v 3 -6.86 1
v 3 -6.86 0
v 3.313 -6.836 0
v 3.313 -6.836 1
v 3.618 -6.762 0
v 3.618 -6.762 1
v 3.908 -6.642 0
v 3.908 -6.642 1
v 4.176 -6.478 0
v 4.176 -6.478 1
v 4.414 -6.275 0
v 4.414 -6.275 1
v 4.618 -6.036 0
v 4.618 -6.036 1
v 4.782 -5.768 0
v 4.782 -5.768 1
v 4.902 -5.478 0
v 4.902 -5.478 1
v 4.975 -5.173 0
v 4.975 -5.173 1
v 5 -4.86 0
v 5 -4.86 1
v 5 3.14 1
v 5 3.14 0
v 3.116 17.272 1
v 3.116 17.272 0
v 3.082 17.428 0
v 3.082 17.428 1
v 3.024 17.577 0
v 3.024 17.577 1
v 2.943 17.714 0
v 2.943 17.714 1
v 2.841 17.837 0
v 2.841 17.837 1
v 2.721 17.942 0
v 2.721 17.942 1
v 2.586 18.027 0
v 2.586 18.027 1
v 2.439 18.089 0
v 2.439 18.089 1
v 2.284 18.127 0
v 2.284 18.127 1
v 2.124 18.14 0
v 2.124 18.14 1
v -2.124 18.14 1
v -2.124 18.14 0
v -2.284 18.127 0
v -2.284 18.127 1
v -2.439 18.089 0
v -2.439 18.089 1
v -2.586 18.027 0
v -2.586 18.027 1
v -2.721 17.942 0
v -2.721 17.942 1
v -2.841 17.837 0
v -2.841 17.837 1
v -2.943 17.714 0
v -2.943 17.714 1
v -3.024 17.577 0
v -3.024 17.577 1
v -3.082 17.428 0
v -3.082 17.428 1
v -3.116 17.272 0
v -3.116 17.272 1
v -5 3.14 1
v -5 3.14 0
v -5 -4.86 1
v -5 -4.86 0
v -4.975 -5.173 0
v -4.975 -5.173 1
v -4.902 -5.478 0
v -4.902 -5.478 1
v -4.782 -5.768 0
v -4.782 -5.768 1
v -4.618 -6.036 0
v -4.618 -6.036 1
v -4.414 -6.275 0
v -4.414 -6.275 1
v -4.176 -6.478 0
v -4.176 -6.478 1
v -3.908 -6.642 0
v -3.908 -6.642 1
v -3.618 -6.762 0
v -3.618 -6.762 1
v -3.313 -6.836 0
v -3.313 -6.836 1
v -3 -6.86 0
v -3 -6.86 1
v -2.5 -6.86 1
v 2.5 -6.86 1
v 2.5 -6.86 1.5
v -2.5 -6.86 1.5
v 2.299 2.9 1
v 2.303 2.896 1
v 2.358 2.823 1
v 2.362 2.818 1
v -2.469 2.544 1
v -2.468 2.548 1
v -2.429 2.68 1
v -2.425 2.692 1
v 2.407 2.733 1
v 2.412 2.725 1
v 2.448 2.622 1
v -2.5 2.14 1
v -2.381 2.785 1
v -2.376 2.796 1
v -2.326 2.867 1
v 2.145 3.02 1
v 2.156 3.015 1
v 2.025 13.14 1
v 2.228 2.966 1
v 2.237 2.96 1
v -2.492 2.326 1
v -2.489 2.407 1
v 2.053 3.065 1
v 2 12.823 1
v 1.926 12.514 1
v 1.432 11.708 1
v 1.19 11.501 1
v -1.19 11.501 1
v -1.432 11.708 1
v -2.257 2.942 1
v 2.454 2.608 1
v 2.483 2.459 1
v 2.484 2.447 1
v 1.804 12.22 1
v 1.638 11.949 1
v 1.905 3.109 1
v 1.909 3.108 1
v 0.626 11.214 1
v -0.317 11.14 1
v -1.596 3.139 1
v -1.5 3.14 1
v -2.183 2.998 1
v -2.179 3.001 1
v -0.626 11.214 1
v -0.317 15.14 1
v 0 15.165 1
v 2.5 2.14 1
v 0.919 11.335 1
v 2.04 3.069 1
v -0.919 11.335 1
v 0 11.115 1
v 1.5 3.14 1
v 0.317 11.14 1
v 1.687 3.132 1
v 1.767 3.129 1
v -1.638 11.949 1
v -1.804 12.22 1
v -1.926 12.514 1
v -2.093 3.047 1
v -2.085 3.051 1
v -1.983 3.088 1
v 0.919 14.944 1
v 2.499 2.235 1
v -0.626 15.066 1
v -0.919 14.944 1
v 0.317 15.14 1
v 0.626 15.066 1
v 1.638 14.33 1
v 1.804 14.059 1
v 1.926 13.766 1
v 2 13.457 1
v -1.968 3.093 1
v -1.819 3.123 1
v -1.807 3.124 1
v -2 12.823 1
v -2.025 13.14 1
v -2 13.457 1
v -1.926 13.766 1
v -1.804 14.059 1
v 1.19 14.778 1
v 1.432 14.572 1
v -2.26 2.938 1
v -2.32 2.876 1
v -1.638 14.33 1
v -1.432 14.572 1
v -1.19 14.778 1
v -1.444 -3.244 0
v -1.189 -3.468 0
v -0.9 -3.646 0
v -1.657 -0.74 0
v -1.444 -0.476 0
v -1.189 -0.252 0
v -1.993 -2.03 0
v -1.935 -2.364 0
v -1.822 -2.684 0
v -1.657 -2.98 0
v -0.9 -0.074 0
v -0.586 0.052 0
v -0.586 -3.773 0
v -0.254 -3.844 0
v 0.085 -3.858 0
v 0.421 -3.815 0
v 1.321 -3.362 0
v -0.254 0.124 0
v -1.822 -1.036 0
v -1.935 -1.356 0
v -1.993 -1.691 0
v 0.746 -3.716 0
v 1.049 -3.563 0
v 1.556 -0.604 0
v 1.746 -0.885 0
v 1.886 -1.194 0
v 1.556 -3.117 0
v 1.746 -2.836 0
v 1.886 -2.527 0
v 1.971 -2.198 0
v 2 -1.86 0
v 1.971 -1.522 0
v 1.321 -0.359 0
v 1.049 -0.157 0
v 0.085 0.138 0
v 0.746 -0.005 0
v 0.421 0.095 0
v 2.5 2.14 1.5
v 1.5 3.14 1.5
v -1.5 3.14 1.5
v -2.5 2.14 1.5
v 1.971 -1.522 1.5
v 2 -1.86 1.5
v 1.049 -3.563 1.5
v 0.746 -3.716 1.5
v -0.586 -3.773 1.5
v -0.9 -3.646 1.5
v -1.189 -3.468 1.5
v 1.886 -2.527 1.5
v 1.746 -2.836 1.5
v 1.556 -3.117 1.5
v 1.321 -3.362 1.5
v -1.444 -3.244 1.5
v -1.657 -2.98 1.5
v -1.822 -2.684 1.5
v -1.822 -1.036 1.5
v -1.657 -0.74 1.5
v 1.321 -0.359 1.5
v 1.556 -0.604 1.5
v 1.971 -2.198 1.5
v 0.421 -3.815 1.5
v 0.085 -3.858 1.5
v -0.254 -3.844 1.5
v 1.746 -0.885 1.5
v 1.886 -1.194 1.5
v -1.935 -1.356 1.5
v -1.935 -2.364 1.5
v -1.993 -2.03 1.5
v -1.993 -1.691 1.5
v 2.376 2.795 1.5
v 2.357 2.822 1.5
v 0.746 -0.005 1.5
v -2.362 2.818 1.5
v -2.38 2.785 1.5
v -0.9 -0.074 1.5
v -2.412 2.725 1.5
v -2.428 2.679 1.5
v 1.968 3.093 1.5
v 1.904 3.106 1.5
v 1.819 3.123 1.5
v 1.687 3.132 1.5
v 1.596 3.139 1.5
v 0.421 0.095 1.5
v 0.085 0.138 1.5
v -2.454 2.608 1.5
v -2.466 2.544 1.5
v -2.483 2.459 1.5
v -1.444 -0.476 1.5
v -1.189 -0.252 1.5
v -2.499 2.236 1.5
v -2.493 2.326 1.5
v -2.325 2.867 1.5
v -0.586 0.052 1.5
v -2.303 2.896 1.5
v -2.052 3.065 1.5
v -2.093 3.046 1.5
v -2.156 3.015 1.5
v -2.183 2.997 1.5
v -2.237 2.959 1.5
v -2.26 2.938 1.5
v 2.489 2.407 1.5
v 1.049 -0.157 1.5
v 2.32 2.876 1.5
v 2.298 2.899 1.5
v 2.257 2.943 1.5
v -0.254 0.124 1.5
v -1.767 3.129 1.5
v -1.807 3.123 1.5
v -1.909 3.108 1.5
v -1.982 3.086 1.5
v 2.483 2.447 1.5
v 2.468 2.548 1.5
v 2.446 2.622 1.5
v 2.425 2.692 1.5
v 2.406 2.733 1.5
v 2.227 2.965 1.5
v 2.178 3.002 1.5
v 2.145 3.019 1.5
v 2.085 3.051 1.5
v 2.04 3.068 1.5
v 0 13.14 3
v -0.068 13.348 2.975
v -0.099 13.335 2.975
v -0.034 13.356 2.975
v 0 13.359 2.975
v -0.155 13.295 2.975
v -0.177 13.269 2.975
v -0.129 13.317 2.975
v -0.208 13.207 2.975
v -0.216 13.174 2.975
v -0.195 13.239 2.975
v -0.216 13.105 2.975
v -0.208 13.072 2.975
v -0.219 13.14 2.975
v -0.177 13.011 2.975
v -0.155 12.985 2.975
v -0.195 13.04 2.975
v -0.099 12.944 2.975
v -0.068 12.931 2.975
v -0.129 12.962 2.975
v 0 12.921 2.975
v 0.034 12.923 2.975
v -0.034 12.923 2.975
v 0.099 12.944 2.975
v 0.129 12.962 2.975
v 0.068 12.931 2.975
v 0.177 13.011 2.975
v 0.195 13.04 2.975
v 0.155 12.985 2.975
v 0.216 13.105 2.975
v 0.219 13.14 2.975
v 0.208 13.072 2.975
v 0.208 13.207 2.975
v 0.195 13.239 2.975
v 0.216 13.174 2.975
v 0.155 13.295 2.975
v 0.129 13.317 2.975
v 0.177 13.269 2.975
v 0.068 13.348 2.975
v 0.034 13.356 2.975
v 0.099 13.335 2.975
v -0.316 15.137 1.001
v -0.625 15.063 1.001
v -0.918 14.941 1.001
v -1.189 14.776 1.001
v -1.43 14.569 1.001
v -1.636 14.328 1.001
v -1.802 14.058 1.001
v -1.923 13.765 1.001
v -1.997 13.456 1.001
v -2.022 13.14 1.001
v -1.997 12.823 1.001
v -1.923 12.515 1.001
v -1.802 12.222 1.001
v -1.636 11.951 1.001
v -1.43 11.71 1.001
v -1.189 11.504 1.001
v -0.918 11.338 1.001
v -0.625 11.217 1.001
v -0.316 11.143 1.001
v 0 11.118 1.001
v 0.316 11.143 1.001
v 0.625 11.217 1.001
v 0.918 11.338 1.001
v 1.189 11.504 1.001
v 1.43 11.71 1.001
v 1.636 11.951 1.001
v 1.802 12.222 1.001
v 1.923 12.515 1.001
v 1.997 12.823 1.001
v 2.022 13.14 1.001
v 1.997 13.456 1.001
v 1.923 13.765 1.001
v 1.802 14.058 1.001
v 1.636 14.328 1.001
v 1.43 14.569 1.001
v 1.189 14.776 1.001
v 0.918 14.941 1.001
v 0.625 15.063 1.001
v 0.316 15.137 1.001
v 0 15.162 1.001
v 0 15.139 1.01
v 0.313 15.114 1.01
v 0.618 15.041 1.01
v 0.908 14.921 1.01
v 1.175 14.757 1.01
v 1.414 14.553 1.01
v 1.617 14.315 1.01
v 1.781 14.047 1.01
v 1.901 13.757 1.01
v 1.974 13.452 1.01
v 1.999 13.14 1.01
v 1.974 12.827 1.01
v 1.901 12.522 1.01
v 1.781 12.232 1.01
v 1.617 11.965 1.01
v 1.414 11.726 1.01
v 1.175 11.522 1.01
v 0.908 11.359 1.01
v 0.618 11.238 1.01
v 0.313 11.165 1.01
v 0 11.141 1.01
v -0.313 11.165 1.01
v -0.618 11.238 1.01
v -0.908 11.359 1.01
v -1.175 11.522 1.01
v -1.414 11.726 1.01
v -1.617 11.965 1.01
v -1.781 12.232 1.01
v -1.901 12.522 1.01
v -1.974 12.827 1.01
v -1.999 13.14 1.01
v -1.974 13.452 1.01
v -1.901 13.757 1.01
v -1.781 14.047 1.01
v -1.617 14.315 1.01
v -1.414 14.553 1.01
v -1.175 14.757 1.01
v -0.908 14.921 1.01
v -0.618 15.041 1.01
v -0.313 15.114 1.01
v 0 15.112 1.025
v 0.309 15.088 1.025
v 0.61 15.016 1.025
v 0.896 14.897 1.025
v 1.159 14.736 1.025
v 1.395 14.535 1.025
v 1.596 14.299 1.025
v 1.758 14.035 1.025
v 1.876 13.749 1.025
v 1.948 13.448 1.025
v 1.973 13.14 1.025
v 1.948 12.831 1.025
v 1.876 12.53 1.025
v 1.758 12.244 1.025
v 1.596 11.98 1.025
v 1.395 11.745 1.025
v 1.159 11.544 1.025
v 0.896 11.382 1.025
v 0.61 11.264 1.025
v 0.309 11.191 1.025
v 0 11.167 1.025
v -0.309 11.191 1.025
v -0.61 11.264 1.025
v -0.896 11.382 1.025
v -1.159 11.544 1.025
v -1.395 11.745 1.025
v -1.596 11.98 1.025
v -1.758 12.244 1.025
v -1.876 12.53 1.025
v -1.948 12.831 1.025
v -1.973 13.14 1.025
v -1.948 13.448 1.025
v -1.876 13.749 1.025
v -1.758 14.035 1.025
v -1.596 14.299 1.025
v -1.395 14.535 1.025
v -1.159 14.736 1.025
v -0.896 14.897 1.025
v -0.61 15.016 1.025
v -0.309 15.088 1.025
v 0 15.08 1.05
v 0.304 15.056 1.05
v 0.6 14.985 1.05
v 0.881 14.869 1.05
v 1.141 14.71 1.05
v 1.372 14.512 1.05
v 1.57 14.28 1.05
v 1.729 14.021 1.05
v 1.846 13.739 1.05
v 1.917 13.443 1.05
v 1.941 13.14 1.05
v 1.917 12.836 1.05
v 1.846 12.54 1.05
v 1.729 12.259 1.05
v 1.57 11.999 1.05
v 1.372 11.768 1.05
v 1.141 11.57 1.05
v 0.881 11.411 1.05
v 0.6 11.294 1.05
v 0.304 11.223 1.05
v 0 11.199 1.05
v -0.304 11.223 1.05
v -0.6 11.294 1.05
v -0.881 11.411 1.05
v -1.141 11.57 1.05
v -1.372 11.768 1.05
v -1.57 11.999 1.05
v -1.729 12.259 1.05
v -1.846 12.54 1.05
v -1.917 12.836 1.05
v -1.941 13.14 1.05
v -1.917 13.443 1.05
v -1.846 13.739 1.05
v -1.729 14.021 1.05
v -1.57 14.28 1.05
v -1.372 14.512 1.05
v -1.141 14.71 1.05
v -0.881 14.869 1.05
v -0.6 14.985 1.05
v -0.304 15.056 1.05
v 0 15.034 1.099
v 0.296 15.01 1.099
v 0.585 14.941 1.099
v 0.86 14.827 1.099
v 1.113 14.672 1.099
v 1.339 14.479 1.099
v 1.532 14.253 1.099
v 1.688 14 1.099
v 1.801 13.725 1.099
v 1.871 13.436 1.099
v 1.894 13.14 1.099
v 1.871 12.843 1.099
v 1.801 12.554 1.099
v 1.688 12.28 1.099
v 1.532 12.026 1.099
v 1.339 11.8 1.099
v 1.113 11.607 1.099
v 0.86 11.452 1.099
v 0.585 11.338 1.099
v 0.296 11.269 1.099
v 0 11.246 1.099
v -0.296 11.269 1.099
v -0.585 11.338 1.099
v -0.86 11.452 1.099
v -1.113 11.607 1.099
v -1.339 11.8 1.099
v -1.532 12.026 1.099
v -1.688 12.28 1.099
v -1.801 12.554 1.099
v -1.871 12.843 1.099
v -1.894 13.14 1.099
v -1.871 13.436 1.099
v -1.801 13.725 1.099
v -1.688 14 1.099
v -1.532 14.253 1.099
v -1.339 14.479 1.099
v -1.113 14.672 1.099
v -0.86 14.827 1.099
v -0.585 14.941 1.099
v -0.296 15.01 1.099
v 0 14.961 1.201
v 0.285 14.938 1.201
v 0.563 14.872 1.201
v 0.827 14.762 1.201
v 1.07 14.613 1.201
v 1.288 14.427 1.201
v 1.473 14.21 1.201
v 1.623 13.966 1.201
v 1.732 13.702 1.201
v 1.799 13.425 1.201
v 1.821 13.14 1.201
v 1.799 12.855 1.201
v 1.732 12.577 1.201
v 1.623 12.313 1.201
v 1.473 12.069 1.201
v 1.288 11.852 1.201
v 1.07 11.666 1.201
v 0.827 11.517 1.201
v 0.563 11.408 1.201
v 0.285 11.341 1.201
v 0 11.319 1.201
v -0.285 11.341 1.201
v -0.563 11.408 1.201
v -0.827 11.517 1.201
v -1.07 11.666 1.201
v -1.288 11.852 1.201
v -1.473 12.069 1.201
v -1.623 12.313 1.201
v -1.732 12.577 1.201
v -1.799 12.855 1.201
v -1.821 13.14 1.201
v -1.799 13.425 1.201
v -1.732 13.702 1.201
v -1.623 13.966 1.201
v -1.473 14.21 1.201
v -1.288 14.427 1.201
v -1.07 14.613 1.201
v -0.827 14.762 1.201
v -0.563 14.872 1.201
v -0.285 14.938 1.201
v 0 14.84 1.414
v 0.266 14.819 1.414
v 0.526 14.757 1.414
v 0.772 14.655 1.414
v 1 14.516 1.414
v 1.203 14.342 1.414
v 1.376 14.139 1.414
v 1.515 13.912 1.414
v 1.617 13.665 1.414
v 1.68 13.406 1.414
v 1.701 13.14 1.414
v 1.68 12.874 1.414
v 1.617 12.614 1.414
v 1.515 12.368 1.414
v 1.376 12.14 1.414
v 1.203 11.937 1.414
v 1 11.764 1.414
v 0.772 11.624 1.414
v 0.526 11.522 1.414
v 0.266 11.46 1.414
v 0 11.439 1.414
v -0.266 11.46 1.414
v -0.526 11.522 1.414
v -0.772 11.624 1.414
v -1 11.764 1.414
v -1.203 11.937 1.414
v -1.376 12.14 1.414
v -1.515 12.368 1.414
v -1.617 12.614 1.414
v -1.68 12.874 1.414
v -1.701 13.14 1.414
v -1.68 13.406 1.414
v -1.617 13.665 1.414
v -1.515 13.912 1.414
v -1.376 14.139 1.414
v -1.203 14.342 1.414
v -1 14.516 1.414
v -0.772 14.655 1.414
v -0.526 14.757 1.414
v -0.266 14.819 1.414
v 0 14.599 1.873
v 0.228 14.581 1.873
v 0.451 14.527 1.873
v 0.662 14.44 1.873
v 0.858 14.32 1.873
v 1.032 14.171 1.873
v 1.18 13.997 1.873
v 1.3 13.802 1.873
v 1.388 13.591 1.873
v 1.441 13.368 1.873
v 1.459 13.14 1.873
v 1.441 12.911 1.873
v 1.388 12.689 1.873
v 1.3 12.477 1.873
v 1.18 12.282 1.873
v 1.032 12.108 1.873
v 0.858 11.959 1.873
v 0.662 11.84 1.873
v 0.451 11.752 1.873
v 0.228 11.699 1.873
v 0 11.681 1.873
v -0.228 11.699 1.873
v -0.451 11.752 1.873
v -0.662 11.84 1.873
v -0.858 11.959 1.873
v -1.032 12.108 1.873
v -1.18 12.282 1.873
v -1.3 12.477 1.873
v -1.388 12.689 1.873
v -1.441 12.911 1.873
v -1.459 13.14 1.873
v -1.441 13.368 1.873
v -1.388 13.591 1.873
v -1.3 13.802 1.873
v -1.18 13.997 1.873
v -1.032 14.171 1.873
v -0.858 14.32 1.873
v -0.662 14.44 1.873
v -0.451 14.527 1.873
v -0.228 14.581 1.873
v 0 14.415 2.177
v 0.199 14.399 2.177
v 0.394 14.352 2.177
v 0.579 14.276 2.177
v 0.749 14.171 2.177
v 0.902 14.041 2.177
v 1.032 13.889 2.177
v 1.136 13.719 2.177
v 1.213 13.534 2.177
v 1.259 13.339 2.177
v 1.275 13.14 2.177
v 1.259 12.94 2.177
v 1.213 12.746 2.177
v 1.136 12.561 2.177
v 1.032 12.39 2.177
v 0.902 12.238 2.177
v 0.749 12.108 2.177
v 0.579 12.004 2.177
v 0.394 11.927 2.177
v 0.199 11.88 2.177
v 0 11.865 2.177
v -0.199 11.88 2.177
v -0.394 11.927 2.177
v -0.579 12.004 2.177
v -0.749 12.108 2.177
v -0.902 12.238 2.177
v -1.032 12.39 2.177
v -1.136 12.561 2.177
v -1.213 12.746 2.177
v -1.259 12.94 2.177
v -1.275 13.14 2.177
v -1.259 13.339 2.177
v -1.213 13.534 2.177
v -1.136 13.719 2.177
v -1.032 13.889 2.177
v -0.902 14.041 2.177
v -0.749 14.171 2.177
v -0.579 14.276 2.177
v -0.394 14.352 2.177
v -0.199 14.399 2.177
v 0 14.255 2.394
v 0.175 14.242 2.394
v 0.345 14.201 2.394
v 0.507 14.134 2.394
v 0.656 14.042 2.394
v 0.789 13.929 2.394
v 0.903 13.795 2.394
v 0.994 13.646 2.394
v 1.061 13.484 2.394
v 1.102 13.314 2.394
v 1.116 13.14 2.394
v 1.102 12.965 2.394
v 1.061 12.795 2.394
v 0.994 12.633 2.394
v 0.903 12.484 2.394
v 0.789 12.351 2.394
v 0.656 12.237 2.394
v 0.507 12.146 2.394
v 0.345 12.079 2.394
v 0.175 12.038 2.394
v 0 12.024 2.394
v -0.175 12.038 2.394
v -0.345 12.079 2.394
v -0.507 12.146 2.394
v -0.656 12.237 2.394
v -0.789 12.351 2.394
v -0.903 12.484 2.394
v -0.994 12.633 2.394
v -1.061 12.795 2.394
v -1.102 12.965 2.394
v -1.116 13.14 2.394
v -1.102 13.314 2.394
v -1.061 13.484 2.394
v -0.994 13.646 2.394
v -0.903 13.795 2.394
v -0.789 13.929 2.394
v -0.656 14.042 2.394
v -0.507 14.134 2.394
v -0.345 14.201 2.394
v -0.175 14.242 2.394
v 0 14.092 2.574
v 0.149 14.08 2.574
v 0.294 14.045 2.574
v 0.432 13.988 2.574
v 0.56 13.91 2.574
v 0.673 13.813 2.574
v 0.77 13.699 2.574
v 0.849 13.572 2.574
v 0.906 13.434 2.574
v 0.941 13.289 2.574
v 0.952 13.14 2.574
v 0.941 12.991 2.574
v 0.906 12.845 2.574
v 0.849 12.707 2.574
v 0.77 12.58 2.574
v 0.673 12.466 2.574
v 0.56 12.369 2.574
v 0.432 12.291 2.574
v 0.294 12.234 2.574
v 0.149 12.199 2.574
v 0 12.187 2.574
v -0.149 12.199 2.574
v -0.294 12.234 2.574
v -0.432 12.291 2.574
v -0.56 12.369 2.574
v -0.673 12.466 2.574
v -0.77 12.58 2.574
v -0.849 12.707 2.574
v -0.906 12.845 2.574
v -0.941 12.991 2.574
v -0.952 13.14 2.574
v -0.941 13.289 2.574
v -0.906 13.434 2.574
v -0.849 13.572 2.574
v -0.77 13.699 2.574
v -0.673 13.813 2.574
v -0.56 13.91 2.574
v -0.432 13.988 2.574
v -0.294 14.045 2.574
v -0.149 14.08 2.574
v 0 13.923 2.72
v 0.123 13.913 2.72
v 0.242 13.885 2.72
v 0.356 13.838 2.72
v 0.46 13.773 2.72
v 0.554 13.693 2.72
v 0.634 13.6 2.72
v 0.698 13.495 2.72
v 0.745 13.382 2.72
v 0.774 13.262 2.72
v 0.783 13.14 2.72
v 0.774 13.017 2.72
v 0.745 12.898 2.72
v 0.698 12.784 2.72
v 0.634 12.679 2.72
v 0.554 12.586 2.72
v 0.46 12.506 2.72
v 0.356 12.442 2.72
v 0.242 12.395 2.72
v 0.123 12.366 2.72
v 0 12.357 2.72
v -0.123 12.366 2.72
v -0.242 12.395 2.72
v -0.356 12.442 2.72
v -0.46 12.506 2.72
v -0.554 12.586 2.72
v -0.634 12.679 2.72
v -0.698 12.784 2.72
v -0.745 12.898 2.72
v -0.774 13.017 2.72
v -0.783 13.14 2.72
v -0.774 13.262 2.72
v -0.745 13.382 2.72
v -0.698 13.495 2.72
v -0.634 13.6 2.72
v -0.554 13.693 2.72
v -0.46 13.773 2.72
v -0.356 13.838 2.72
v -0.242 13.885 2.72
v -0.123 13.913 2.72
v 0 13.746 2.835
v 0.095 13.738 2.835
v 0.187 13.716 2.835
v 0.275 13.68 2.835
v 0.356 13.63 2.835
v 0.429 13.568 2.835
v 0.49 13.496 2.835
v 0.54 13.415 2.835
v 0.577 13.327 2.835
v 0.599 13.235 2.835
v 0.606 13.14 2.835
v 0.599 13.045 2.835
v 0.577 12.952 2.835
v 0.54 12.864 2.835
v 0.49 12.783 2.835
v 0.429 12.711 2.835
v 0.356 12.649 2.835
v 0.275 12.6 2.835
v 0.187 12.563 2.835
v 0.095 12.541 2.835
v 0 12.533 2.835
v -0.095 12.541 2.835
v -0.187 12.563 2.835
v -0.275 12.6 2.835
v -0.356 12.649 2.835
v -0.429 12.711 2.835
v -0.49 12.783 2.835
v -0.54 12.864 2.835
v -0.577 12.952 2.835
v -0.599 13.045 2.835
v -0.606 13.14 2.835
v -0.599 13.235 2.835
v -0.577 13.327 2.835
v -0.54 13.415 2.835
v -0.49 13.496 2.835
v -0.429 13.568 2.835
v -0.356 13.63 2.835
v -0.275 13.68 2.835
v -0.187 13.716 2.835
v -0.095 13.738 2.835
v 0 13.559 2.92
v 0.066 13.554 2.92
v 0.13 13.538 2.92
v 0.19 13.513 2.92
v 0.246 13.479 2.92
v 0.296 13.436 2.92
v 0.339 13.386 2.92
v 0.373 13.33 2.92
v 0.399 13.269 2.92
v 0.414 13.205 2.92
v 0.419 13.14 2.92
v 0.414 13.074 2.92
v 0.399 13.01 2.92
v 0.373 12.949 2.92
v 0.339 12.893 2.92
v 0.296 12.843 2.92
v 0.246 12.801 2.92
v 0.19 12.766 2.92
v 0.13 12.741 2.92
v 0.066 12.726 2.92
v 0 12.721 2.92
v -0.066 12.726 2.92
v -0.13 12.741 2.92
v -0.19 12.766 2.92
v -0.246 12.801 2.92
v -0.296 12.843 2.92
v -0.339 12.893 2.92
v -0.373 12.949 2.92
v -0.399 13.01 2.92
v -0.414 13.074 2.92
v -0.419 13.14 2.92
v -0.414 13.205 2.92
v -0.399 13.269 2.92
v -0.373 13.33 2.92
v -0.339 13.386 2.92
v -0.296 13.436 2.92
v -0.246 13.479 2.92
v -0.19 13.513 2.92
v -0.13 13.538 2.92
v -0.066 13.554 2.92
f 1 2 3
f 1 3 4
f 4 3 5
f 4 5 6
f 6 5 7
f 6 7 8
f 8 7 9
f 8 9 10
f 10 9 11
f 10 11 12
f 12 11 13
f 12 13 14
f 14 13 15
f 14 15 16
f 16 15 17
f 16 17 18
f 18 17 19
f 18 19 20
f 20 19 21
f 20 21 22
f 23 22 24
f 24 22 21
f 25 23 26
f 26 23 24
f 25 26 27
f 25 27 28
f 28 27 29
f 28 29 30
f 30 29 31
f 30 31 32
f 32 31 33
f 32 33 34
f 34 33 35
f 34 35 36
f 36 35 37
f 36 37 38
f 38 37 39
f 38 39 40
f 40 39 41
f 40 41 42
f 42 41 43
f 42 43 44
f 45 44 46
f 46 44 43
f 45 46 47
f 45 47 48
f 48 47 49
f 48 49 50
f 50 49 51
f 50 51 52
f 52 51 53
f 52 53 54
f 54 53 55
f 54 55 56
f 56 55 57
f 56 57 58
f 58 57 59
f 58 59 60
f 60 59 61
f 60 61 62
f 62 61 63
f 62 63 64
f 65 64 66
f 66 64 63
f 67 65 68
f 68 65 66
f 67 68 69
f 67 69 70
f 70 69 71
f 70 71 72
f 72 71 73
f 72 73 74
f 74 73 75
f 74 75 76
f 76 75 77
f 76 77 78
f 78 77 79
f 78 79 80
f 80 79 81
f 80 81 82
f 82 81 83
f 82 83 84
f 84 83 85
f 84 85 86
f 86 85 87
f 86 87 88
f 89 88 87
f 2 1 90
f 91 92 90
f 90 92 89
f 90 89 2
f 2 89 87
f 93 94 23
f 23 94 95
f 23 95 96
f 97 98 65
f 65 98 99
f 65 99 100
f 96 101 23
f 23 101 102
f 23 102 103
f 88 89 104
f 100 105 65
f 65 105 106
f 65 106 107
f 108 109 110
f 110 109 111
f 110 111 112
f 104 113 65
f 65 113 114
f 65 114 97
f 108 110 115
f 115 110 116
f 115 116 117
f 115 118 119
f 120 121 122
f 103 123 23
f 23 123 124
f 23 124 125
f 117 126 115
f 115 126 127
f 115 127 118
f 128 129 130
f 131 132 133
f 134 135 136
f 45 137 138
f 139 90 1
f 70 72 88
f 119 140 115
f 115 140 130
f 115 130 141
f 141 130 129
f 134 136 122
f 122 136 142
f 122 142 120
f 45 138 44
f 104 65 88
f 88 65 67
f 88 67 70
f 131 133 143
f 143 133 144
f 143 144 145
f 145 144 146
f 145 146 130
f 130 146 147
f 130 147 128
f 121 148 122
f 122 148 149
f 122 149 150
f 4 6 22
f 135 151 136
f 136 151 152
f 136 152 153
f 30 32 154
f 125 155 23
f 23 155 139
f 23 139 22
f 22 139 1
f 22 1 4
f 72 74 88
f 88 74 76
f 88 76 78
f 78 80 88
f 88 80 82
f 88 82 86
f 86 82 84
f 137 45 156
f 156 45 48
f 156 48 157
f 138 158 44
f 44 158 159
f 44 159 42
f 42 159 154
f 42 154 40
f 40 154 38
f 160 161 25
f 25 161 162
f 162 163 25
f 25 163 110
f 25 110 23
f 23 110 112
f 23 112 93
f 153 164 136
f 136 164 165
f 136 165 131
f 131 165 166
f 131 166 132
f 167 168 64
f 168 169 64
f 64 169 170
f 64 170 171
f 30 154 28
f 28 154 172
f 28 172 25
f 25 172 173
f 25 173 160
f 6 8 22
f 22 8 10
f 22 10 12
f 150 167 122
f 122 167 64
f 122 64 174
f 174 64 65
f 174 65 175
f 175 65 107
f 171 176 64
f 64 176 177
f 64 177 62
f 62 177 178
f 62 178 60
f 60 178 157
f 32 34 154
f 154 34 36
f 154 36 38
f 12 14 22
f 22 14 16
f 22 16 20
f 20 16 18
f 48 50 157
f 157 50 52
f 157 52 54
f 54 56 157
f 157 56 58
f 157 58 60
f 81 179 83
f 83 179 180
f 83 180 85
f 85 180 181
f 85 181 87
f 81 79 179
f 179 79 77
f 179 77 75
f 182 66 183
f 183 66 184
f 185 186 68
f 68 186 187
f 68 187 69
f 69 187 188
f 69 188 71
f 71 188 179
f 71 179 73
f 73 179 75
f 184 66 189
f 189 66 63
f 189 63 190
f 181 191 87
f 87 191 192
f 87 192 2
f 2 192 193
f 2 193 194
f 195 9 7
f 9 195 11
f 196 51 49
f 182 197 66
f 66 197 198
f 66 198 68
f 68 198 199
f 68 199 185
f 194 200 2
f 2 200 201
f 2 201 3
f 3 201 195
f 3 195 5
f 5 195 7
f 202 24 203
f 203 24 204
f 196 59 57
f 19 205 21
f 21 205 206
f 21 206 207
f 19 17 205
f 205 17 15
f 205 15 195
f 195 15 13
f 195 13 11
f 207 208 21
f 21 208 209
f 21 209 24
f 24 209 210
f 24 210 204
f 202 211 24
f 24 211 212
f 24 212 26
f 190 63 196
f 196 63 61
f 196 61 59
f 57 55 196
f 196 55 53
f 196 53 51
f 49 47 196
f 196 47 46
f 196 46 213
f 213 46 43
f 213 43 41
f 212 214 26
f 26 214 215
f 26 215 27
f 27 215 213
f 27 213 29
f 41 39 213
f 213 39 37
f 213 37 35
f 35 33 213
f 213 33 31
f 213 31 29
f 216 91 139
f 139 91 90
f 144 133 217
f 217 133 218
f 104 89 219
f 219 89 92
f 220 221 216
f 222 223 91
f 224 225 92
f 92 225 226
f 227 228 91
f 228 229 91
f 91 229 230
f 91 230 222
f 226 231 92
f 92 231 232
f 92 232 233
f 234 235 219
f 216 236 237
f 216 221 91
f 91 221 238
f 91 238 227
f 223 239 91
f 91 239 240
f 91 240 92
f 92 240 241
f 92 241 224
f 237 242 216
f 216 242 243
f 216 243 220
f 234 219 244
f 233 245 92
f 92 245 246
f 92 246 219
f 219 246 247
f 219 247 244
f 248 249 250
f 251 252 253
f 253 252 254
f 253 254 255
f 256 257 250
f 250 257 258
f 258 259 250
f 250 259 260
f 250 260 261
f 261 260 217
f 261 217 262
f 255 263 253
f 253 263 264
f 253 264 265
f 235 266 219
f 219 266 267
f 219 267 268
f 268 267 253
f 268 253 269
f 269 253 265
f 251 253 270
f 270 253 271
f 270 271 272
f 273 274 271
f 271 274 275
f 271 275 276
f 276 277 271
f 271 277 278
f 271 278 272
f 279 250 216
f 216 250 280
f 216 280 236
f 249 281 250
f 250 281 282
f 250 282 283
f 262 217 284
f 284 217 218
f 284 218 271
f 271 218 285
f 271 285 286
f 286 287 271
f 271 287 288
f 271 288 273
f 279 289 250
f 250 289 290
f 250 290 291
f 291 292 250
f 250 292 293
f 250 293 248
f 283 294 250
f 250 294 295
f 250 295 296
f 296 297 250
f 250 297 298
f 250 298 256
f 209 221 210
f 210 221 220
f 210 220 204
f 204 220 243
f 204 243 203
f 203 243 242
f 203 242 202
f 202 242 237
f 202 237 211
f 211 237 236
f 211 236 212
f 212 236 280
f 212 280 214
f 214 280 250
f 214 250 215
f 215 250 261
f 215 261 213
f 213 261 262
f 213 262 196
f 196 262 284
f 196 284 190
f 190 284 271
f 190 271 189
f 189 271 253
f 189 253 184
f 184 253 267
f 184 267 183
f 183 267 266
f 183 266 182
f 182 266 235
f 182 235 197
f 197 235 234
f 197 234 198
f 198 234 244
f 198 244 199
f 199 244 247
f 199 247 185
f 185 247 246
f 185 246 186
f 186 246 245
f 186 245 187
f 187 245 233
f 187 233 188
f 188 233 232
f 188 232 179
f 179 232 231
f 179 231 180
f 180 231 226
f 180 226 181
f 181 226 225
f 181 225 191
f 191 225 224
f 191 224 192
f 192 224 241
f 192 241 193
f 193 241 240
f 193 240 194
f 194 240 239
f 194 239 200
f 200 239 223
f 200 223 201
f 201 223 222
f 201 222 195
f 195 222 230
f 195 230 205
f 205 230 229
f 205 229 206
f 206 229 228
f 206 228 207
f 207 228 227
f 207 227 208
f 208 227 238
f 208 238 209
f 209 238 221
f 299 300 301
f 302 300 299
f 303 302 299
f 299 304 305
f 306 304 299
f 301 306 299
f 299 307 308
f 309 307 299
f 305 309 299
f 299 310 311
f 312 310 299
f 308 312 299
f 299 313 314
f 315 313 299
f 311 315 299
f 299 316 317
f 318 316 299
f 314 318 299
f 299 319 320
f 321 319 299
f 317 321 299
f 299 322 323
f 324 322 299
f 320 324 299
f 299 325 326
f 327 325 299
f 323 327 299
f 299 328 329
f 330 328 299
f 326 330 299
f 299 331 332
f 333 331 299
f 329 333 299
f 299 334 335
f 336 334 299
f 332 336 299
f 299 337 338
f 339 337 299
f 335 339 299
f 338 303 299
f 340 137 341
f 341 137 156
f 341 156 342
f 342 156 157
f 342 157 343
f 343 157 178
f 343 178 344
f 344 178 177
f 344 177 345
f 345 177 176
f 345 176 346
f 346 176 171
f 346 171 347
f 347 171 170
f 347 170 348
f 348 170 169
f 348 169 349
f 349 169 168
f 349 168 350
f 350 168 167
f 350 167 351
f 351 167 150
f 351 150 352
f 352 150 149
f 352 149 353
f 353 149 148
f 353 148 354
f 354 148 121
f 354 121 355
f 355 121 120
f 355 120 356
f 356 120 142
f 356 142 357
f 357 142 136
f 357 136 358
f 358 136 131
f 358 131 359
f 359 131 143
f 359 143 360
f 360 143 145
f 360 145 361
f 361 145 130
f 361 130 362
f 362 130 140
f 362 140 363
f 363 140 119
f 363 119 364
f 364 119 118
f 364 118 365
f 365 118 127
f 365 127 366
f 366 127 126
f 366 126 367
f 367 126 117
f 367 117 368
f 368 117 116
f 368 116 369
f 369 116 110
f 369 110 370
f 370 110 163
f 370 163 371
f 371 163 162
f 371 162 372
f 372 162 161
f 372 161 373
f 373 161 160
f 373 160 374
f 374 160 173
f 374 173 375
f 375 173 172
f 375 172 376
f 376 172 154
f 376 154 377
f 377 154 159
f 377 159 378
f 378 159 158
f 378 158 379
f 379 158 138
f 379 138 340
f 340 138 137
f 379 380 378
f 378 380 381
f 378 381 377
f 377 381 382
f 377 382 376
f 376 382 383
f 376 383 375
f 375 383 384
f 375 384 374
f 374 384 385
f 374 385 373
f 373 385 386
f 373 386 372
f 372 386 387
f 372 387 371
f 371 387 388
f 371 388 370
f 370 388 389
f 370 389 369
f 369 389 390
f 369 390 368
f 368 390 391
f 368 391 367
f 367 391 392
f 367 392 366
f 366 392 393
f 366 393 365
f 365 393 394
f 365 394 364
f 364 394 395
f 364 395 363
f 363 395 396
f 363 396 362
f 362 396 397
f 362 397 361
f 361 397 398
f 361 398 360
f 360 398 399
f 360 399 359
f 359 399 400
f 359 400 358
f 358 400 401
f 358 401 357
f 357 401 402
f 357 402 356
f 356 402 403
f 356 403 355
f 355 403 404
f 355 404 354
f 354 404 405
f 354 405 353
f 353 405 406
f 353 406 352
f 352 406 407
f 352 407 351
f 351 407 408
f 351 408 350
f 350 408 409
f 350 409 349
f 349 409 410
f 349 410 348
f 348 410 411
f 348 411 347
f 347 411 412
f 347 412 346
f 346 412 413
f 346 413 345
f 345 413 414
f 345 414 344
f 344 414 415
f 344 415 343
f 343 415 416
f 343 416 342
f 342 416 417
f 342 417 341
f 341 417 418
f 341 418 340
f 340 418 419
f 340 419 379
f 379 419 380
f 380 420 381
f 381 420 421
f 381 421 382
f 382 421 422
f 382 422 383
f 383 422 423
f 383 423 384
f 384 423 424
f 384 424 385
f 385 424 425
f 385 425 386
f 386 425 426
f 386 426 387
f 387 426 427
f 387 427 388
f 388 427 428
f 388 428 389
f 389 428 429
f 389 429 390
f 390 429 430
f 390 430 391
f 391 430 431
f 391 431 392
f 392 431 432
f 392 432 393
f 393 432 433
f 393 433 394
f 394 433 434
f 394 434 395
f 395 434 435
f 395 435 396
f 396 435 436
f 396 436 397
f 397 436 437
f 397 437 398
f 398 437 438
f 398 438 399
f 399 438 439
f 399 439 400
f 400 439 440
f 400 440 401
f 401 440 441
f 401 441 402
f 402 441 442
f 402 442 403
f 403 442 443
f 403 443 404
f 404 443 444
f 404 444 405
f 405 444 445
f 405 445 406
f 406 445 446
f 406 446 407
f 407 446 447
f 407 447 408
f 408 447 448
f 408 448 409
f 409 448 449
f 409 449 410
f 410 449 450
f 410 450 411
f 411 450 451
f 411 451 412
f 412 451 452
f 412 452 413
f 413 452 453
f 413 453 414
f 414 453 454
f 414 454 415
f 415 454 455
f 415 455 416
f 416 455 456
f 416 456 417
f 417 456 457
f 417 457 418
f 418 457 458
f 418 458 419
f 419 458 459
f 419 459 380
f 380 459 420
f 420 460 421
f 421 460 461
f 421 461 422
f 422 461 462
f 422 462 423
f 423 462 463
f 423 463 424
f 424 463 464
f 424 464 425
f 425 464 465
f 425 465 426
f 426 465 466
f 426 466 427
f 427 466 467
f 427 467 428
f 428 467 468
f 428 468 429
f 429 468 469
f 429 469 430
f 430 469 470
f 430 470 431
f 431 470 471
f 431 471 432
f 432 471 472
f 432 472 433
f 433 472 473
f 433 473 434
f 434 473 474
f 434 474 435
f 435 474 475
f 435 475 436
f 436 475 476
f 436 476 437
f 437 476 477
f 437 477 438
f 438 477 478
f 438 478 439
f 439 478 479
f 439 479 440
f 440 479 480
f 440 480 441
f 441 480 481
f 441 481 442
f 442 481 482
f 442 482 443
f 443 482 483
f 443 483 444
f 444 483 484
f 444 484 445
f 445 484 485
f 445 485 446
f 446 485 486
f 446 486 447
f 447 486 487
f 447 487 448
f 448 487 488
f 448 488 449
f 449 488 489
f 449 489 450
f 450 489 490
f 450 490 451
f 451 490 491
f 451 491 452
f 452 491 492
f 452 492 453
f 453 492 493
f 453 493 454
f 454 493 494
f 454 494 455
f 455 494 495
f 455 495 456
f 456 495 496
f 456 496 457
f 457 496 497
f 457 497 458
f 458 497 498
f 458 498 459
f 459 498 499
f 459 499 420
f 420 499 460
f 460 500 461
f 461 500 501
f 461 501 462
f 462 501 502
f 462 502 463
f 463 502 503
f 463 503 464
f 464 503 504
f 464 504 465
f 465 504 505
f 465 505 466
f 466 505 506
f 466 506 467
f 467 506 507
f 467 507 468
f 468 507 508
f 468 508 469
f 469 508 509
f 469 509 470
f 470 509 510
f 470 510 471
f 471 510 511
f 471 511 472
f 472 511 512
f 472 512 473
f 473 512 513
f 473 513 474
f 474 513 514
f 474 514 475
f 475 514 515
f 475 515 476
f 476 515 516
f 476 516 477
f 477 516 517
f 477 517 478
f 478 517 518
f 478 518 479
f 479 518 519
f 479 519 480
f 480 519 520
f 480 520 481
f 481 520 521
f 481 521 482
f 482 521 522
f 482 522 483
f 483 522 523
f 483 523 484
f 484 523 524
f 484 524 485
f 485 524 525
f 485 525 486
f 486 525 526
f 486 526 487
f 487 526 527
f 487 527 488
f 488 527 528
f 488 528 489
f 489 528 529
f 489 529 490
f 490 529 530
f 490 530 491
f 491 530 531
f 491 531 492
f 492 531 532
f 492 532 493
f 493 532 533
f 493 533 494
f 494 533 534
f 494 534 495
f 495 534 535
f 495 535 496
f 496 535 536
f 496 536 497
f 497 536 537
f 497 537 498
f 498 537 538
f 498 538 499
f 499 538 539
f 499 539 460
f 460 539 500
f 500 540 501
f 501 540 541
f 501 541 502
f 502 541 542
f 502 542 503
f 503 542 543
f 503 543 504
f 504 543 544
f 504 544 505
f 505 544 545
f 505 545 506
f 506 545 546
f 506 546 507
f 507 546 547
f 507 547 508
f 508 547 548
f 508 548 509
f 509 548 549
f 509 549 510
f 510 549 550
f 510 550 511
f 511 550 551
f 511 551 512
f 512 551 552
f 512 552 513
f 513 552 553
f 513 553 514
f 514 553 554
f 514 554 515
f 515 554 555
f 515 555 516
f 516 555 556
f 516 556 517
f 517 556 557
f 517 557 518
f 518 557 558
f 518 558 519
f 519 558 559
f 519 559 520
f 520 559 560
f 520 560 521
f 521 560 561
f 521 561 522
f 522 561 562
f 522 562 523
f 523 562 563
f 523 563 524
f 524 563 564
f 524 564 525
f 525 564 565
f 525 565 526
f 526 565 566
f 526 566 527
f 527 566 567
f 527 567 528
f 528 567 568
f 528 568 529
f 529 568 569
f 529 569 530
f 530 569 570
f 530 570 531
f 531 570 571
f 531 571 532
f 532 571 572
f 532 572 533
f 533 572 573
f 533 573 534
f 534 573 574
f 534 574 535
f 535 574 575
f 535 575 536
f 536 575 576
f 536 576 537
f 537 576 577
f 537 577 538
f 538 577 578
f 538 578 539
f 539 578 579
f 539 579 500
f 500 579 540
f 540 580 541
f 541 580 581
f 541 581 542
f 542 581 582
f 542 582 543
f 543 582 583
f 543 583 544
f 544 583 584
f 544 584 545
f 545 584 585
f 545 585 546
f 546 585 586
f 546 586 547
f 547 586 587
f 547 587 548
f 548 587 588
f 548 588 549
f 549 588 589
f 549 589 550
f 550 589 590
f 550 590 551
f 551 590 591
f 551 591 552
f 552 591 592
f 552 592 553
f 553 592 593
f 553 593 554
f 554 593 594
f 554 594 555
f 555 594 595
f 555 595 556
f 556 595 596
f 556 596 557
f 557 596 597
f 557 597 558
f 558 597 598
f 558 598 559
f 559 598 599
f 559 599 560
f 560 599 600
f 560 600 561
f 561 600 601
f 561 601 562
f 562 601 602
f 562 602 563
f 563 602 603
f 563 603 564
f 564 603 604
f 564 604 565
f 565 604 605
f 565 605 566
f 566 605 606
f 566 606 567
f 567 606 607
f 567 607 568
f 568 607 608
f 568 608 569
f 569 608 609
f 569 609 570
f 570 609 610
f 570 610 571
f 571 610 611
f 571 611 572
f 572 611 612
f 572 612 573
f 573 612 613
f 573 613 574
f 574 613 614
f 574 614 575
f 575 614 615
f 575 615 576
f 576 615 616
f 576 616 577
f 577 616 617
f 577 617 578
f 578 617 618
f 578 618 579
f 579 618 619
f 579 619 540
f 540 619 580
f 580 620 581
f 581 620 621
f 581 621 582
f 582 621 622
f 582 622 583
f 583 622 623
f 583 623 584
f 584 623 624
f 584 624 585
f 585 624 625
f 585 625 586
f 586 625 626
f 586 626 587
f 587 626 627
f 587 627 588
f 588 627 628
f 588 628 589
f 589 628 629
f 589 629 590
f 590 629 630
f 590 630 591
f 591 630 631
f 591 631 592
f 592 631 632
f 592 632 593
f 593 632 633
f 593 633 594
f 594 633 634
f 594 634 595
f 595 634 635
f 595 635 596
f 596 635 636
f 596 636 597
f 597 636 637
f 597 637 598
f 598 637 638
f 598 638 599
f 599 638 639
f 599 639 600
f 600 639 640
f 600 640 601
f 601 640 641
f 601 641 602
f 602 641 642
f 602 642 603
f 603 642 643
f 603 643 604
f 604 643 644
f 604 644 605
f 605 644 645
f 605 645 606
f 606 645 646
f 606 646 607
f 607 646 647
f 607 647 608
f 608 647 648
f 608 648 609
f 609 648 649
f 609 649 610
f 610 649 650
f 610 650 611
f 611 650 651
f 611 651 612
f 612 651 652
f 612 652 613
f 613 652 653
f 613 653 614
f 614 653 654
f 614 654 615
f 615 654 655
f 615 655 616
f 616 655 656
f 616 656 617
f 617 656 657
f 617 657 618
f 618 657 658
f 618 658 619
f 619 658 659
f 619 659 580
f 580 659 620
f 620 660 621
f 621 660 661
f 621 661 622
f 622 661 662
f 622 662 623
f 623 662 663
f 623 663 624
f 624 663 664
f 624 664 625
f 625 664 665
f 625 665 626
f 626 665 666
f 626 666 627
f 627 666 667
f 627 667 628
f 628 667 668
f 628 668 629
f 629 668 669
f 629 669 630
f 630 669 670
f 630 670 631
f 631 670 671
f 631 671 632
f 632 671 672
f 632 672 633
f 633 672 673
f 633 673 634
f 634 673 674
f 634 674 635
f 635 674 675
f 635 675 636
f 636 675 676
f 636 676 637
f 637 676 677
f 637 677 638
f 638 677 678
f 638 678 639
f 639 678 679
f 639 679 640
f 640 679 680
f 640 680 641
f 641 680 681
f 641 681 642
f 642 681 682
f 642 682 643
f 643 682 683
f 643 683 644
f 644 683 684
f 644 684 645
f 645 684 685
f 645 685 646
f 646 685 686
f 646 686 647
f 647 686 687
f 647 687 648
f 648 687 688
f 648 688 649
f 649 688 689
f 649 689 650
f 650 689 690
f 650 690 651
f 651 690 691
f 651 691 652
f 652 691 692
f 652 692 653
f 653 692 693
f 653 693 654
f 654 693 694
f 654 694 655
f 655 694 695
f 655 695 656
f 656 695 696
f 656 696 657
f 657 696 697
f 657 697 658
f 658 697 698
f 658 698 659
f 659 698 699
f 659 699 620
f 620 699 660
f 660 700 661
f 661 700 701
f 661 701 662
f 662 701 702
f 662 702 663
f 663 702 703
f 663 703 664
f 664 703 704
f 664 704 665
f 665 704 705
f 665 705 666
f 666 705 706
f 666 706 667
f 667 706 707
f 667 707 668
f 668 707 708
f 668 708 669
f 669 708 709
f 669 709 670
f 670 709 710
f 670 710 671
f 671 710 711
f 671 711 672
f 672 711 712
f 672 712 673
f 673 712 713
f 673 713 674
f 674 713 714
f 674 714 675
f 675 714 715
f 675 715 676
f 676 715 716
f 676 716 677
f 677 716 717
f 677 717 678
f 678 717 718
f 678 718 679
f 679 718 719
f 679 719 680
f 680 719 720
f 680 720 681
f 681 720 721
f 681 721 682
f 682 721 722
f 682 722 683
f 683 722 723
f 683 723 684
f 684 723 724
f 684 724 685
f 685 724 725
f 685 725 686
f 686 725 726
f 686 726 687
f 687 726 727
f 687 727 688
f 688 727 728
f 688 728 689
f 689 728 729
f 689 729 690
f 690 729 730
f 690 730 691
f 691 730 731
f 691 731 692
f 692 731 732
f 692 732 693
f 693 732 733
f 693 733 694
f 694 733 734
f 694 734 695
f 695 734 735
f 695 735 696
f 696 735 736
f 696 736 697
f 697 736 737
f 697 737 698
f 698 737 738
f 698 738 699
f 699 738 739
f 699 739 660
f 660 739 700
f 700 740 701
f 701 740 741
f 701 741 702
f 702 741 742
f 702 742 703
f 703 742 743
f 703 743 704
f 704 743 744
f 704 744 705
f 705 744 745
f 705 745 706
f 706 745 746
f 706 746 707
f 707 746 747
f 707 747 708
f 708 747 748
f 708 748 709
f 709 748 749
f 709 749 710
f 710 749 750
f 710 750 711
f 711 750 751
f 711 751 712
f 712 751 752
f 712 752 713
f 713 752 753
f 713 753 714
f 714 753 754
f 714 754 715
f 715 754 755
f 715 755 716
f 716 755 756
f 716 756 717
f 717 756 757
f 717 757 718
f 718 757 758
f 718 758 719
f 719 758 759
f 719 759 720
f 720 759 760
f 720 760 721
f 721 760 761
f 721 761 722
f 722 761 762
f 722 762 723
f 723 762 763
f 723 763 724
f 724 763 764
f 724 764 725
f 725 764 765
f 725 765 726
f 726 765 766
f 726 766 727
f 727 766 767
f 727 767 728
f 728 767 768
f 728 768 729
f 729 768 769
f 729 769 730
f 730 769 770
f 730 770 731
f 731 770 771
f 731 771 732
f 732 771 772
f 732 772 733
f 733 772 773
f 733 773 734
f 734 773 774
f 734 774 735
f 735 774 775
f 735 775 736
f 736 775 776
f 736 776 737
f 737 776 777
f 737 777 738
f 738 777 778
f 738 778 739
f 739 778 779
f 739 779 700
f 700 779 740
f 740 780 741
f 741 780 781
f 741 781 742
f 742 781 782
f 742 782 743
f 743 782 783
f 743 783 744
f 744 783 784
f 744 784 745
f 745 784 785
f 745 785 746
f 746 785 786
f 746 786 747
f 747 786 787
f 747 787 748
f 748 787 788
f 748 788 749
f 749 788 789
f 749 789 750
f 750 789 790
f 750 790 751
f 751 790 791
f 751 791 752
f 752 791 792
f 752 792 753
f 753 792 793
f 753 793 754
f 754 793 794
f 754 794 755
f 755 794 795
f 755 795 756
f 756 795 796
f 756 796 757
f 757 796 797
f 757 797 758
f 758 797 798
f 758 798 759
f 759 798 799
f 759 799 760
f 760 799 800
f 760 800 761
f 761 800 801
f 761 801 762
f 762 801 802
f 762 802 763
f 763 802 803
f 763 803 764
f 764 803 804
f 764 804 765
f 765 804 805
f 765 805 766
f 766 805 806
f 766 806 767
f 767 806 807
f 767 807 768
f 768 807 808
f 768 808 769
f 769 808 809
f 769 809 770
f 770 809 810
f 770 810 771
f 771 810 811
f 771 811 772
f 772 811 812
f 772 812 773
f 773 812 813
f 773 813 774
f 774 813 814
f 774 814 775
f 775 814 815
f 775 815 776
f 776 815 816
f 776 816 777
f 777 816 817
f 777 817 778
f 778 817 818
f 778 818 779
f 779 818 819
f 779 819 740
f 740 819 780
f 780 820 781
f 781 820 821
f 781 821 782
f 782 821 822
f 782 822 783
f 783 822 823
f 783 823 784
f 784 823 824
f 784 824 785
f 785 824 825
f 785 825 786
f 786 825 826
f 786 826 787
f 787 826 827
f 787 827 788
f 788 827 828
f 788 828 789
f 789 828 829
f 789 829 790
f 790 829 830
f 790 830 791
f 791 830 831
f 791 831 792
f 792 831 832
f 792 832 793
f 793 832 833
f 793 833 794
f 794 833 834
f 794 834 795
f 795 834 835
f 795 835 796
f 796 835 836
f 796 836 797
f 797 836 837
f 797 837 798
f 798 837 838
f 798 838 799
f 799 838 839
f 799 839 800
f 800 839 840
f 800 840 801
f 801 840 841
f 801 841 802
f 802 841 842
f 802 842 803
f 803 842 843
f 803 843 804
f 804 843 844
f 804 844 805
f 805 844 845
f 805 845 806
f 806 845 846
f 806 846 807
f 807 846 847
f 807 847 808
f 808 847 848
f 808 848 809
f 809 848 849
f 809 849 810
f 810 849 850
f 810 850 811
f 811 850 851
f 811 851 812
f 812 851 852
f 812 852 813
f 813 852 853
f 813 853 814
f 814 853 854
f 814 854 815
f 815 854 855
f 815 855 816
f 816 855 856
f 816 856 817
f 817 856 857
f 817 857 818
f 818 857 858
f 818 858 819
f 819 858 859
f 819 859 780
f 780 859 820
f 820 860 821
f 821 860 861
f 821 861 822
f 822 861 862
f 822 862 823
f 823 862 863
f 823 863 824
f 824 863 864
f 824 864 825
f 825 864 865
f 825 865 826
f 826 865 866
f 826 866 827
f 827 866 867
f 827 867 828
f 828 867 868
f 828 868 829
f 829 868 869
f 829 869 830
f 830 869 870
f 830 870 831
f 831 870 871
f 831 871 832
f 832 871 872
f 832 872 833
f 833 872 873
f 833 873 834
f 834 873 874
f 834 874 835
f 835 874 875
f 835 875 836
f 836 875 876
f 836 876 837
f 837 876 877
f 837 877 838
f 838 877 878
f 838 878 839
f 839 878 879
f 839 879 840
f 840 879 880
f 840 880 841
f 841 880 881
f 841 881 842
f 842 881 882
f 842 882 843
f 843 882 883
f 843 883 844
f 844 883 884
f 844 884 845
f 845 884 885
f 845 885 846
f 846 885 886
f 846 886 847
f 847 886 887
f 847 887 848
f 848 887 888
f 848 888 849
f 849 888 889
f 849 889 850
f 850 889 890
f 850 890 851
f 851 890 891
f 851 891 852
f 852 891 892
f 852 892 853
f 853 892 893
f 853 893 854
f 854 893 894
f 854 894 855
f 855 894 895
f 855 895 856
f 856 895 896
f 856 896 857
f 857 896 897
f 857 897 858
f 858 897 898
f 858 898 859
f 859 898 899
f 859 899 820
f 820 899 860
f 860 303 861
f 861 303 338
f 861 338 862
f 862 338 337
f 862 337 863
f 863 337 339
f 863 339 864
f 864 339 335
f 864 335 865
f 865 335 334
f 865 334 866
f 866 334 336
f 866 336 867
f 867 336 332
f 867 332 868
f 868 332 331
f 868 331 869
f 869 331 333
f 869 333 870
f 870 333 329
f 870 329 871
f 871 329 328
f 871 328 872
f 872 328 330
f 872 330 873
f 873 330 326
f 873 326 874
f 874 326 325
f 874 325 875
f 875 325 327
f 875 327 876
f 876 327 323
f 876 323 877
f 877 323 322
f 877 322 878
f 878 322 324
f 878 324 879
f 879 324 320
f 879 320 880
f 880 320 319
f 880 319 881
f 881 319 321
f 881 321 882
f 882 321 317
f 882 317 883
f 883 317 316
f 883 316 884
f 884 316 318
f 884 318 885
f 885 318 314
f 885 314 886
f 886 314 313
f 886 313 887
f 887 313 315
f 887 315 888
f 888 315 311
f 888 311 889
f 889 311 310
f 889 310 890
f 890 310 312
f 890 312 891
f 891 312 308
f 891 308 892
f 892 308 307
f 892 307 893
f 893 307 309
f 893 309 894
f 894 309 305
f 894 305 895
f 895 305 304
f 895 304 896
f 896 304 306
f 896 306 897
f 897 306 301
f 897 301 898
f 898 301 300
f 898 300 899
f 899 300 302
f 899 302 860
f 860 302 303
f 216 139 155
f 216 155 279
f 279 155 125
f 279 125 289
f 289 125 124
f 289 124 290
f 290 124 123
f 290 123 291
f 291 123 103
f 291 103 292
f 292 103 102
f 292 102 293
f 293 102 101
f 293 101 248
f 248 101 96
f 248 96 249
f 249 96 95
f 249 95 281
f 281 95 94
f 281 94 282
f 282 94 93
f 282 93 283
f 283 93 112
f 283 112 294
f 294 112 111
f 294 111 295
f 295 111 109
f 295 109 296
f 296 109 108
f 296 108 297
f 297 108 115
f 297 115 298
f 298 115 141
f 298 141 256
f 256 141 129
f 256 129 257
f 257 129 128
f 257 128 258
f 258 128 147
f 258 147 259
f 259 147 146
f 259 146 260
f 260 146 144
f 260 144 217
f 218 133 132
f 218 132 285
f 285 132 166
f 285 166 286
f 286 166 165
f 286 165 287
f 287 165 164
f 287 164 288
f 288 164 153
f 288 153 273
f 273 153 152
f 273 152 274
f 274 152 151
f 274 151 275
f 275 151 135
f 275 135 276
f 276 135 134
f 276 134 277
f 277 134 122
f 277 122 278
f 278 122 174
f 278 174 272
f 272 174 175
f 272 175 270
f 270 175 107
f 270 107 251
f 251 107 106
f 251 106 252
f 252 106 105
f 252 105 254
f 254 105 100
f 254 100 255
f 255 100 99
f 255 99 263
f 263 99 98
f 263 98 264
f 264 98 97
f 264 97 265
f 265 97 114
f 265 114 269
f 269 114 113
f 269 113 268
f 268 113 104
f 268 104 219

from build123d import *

# Parameters (mm, degrees)
BOSS_EXTRUDE1_DEPTH     = 1
SKETCH4_W               = 5
SKETCH4_H               = 10
BOSS_EXTRUDE2_DEPTH     = 0.5
CUT_EXTRUDE2_DEPTH      = 19.842742091
CUT_EXTRUDE2_DEPTH_BACK = 19.842742091
SKETCH3_R               = 2
FILLET1_SIZE            = 1


with BuildPart() as part:
    # Sketch1 → Boss-Extrude1 (new body)
    with BuildSketch(Plane.XY):
        with BuildLine():
            Line((-3, -6.860294118), (3, -6.860294118))
            ThreePointArc((3, -6.860294118), (4.414213562, -6.27450768), (5, -4.860294118))
            Line((5, -4.860294118), (5, 3.139705882))
            Line((5, 3.139705882), (3.115711504, 17.271869602))
            ThreePointArc((3.115711504, 17.271869602), (2.783208235, 17.89209), (2.124483603, 18.139705882))
            Line((2.124483603, 18.139705882), (-2.124483603, 18.139705882))
            ThreePointArc((-2.124483603, 18.139705882), (-2.783208235, 17.89209), (-3.115711504, 17.271869602))
            Line((-3.115711504, 17.271869602), (-5, 3.139705882))
            Line((-5, 3.139705882), (-5, -4.860294118))
            ThreePointArc((-5, -4.860294118), (-4.414213562, -6.27450768), (-3, -6.860294118))
        make_face()
    extrude(amount=BOSS_EXTRUDE1_DEPTH)

    # Sketch4 → Boss-Extrude2 (add)
    with BuildSketch(Plane.XY.offset(1)):
        with Locations((0, -1.860294118)):
            Rectangle(SKETCH4_W, SKETCH4_H)
    extrude(amount=BOSS_EXTRUDE2_DEPTH)

    # Sketch3 → Cut-Extrude2 (cut, two sides: drawn at the far end of the back side and taken through both)
    with BuildSketch(Plane.XY.offset(1).offset(-CUT_EXTRUDE2_DEPTH_BACK)):
        with Locations((0, -1.860294118)):
            Circle(SKETCH3_R)
    extrude(amount=CUT_EXTRUDE2_DEPTH + CUT_EXTRUDE2_DEPTH_BACK, mode=Mode.SUBTRACT)

    # Sketch10 → Revolve1 (revolve)
    with BuildSketch(Plane.ZY):
        with BuildLine():
            Line((3, 13.139705882), (1, 13.139705882))
            Line((1, 13.139705882), (1, 15.164832594))
            add(Edge.make_bspline(
                [(1, 15.164832594), (1.103472507, 14.776659397), (2.95133834, 14.490964633), (3, 13.139705882)],
                knots=[0, 0, 0, 0, 1, 1, 1, 1], degree=3))
        make_face()
    revolve(axis=Axis((0, 13.139705882, 3), (0, 0, -1)))

    # Fillet1
    # a fillet whose section is not a circle: 1 mm, written as the material it takes off along each edge
    with BuildSketch(Plane(origin=(2.5, 3.139705882, 1), x_dir=(-1, 0, 0), z_dir=(0, 0, 1)), Plane(origin=(-2.5, 3.139705882, 1), x_dir=(0, -1, 0), z_dir=(0, 0, 1))) as fillet1_piece_1:
        with BuildLine():
            add(Edge.make_bspline([(FILLET1_SIZE, 0), (FILLET1_SIZE * 0.831801948466, 0), (FILLET1_SIZE * 0.663603896932, 0), (FILLET1_SIZE * 0.292893218813, FILLET1_SIZE * 0.0716919198361), (FILLET1_SIZE * 0.0716919198361, FILLET1_SIZE * 0.292893218813), (0, FILLET1_SIZE * 0.663603896932), (0, FILLET1_SIZE * 0.831801948466), (0, FILLET1_SIZE)], knots=[0, 0, 0, 0, 0, 0, 0.5, 0.5, 1, 1, 1, 1, 1, 1], degree=5))
            Line((0, FILLET1_SIZE), (0, 0))
            Line((0, 0), (FILLET1_SIZE, 0))
        make_face()
    extrude(amount=3, mode=Mode.SUBTRACT)


solid = part.part
